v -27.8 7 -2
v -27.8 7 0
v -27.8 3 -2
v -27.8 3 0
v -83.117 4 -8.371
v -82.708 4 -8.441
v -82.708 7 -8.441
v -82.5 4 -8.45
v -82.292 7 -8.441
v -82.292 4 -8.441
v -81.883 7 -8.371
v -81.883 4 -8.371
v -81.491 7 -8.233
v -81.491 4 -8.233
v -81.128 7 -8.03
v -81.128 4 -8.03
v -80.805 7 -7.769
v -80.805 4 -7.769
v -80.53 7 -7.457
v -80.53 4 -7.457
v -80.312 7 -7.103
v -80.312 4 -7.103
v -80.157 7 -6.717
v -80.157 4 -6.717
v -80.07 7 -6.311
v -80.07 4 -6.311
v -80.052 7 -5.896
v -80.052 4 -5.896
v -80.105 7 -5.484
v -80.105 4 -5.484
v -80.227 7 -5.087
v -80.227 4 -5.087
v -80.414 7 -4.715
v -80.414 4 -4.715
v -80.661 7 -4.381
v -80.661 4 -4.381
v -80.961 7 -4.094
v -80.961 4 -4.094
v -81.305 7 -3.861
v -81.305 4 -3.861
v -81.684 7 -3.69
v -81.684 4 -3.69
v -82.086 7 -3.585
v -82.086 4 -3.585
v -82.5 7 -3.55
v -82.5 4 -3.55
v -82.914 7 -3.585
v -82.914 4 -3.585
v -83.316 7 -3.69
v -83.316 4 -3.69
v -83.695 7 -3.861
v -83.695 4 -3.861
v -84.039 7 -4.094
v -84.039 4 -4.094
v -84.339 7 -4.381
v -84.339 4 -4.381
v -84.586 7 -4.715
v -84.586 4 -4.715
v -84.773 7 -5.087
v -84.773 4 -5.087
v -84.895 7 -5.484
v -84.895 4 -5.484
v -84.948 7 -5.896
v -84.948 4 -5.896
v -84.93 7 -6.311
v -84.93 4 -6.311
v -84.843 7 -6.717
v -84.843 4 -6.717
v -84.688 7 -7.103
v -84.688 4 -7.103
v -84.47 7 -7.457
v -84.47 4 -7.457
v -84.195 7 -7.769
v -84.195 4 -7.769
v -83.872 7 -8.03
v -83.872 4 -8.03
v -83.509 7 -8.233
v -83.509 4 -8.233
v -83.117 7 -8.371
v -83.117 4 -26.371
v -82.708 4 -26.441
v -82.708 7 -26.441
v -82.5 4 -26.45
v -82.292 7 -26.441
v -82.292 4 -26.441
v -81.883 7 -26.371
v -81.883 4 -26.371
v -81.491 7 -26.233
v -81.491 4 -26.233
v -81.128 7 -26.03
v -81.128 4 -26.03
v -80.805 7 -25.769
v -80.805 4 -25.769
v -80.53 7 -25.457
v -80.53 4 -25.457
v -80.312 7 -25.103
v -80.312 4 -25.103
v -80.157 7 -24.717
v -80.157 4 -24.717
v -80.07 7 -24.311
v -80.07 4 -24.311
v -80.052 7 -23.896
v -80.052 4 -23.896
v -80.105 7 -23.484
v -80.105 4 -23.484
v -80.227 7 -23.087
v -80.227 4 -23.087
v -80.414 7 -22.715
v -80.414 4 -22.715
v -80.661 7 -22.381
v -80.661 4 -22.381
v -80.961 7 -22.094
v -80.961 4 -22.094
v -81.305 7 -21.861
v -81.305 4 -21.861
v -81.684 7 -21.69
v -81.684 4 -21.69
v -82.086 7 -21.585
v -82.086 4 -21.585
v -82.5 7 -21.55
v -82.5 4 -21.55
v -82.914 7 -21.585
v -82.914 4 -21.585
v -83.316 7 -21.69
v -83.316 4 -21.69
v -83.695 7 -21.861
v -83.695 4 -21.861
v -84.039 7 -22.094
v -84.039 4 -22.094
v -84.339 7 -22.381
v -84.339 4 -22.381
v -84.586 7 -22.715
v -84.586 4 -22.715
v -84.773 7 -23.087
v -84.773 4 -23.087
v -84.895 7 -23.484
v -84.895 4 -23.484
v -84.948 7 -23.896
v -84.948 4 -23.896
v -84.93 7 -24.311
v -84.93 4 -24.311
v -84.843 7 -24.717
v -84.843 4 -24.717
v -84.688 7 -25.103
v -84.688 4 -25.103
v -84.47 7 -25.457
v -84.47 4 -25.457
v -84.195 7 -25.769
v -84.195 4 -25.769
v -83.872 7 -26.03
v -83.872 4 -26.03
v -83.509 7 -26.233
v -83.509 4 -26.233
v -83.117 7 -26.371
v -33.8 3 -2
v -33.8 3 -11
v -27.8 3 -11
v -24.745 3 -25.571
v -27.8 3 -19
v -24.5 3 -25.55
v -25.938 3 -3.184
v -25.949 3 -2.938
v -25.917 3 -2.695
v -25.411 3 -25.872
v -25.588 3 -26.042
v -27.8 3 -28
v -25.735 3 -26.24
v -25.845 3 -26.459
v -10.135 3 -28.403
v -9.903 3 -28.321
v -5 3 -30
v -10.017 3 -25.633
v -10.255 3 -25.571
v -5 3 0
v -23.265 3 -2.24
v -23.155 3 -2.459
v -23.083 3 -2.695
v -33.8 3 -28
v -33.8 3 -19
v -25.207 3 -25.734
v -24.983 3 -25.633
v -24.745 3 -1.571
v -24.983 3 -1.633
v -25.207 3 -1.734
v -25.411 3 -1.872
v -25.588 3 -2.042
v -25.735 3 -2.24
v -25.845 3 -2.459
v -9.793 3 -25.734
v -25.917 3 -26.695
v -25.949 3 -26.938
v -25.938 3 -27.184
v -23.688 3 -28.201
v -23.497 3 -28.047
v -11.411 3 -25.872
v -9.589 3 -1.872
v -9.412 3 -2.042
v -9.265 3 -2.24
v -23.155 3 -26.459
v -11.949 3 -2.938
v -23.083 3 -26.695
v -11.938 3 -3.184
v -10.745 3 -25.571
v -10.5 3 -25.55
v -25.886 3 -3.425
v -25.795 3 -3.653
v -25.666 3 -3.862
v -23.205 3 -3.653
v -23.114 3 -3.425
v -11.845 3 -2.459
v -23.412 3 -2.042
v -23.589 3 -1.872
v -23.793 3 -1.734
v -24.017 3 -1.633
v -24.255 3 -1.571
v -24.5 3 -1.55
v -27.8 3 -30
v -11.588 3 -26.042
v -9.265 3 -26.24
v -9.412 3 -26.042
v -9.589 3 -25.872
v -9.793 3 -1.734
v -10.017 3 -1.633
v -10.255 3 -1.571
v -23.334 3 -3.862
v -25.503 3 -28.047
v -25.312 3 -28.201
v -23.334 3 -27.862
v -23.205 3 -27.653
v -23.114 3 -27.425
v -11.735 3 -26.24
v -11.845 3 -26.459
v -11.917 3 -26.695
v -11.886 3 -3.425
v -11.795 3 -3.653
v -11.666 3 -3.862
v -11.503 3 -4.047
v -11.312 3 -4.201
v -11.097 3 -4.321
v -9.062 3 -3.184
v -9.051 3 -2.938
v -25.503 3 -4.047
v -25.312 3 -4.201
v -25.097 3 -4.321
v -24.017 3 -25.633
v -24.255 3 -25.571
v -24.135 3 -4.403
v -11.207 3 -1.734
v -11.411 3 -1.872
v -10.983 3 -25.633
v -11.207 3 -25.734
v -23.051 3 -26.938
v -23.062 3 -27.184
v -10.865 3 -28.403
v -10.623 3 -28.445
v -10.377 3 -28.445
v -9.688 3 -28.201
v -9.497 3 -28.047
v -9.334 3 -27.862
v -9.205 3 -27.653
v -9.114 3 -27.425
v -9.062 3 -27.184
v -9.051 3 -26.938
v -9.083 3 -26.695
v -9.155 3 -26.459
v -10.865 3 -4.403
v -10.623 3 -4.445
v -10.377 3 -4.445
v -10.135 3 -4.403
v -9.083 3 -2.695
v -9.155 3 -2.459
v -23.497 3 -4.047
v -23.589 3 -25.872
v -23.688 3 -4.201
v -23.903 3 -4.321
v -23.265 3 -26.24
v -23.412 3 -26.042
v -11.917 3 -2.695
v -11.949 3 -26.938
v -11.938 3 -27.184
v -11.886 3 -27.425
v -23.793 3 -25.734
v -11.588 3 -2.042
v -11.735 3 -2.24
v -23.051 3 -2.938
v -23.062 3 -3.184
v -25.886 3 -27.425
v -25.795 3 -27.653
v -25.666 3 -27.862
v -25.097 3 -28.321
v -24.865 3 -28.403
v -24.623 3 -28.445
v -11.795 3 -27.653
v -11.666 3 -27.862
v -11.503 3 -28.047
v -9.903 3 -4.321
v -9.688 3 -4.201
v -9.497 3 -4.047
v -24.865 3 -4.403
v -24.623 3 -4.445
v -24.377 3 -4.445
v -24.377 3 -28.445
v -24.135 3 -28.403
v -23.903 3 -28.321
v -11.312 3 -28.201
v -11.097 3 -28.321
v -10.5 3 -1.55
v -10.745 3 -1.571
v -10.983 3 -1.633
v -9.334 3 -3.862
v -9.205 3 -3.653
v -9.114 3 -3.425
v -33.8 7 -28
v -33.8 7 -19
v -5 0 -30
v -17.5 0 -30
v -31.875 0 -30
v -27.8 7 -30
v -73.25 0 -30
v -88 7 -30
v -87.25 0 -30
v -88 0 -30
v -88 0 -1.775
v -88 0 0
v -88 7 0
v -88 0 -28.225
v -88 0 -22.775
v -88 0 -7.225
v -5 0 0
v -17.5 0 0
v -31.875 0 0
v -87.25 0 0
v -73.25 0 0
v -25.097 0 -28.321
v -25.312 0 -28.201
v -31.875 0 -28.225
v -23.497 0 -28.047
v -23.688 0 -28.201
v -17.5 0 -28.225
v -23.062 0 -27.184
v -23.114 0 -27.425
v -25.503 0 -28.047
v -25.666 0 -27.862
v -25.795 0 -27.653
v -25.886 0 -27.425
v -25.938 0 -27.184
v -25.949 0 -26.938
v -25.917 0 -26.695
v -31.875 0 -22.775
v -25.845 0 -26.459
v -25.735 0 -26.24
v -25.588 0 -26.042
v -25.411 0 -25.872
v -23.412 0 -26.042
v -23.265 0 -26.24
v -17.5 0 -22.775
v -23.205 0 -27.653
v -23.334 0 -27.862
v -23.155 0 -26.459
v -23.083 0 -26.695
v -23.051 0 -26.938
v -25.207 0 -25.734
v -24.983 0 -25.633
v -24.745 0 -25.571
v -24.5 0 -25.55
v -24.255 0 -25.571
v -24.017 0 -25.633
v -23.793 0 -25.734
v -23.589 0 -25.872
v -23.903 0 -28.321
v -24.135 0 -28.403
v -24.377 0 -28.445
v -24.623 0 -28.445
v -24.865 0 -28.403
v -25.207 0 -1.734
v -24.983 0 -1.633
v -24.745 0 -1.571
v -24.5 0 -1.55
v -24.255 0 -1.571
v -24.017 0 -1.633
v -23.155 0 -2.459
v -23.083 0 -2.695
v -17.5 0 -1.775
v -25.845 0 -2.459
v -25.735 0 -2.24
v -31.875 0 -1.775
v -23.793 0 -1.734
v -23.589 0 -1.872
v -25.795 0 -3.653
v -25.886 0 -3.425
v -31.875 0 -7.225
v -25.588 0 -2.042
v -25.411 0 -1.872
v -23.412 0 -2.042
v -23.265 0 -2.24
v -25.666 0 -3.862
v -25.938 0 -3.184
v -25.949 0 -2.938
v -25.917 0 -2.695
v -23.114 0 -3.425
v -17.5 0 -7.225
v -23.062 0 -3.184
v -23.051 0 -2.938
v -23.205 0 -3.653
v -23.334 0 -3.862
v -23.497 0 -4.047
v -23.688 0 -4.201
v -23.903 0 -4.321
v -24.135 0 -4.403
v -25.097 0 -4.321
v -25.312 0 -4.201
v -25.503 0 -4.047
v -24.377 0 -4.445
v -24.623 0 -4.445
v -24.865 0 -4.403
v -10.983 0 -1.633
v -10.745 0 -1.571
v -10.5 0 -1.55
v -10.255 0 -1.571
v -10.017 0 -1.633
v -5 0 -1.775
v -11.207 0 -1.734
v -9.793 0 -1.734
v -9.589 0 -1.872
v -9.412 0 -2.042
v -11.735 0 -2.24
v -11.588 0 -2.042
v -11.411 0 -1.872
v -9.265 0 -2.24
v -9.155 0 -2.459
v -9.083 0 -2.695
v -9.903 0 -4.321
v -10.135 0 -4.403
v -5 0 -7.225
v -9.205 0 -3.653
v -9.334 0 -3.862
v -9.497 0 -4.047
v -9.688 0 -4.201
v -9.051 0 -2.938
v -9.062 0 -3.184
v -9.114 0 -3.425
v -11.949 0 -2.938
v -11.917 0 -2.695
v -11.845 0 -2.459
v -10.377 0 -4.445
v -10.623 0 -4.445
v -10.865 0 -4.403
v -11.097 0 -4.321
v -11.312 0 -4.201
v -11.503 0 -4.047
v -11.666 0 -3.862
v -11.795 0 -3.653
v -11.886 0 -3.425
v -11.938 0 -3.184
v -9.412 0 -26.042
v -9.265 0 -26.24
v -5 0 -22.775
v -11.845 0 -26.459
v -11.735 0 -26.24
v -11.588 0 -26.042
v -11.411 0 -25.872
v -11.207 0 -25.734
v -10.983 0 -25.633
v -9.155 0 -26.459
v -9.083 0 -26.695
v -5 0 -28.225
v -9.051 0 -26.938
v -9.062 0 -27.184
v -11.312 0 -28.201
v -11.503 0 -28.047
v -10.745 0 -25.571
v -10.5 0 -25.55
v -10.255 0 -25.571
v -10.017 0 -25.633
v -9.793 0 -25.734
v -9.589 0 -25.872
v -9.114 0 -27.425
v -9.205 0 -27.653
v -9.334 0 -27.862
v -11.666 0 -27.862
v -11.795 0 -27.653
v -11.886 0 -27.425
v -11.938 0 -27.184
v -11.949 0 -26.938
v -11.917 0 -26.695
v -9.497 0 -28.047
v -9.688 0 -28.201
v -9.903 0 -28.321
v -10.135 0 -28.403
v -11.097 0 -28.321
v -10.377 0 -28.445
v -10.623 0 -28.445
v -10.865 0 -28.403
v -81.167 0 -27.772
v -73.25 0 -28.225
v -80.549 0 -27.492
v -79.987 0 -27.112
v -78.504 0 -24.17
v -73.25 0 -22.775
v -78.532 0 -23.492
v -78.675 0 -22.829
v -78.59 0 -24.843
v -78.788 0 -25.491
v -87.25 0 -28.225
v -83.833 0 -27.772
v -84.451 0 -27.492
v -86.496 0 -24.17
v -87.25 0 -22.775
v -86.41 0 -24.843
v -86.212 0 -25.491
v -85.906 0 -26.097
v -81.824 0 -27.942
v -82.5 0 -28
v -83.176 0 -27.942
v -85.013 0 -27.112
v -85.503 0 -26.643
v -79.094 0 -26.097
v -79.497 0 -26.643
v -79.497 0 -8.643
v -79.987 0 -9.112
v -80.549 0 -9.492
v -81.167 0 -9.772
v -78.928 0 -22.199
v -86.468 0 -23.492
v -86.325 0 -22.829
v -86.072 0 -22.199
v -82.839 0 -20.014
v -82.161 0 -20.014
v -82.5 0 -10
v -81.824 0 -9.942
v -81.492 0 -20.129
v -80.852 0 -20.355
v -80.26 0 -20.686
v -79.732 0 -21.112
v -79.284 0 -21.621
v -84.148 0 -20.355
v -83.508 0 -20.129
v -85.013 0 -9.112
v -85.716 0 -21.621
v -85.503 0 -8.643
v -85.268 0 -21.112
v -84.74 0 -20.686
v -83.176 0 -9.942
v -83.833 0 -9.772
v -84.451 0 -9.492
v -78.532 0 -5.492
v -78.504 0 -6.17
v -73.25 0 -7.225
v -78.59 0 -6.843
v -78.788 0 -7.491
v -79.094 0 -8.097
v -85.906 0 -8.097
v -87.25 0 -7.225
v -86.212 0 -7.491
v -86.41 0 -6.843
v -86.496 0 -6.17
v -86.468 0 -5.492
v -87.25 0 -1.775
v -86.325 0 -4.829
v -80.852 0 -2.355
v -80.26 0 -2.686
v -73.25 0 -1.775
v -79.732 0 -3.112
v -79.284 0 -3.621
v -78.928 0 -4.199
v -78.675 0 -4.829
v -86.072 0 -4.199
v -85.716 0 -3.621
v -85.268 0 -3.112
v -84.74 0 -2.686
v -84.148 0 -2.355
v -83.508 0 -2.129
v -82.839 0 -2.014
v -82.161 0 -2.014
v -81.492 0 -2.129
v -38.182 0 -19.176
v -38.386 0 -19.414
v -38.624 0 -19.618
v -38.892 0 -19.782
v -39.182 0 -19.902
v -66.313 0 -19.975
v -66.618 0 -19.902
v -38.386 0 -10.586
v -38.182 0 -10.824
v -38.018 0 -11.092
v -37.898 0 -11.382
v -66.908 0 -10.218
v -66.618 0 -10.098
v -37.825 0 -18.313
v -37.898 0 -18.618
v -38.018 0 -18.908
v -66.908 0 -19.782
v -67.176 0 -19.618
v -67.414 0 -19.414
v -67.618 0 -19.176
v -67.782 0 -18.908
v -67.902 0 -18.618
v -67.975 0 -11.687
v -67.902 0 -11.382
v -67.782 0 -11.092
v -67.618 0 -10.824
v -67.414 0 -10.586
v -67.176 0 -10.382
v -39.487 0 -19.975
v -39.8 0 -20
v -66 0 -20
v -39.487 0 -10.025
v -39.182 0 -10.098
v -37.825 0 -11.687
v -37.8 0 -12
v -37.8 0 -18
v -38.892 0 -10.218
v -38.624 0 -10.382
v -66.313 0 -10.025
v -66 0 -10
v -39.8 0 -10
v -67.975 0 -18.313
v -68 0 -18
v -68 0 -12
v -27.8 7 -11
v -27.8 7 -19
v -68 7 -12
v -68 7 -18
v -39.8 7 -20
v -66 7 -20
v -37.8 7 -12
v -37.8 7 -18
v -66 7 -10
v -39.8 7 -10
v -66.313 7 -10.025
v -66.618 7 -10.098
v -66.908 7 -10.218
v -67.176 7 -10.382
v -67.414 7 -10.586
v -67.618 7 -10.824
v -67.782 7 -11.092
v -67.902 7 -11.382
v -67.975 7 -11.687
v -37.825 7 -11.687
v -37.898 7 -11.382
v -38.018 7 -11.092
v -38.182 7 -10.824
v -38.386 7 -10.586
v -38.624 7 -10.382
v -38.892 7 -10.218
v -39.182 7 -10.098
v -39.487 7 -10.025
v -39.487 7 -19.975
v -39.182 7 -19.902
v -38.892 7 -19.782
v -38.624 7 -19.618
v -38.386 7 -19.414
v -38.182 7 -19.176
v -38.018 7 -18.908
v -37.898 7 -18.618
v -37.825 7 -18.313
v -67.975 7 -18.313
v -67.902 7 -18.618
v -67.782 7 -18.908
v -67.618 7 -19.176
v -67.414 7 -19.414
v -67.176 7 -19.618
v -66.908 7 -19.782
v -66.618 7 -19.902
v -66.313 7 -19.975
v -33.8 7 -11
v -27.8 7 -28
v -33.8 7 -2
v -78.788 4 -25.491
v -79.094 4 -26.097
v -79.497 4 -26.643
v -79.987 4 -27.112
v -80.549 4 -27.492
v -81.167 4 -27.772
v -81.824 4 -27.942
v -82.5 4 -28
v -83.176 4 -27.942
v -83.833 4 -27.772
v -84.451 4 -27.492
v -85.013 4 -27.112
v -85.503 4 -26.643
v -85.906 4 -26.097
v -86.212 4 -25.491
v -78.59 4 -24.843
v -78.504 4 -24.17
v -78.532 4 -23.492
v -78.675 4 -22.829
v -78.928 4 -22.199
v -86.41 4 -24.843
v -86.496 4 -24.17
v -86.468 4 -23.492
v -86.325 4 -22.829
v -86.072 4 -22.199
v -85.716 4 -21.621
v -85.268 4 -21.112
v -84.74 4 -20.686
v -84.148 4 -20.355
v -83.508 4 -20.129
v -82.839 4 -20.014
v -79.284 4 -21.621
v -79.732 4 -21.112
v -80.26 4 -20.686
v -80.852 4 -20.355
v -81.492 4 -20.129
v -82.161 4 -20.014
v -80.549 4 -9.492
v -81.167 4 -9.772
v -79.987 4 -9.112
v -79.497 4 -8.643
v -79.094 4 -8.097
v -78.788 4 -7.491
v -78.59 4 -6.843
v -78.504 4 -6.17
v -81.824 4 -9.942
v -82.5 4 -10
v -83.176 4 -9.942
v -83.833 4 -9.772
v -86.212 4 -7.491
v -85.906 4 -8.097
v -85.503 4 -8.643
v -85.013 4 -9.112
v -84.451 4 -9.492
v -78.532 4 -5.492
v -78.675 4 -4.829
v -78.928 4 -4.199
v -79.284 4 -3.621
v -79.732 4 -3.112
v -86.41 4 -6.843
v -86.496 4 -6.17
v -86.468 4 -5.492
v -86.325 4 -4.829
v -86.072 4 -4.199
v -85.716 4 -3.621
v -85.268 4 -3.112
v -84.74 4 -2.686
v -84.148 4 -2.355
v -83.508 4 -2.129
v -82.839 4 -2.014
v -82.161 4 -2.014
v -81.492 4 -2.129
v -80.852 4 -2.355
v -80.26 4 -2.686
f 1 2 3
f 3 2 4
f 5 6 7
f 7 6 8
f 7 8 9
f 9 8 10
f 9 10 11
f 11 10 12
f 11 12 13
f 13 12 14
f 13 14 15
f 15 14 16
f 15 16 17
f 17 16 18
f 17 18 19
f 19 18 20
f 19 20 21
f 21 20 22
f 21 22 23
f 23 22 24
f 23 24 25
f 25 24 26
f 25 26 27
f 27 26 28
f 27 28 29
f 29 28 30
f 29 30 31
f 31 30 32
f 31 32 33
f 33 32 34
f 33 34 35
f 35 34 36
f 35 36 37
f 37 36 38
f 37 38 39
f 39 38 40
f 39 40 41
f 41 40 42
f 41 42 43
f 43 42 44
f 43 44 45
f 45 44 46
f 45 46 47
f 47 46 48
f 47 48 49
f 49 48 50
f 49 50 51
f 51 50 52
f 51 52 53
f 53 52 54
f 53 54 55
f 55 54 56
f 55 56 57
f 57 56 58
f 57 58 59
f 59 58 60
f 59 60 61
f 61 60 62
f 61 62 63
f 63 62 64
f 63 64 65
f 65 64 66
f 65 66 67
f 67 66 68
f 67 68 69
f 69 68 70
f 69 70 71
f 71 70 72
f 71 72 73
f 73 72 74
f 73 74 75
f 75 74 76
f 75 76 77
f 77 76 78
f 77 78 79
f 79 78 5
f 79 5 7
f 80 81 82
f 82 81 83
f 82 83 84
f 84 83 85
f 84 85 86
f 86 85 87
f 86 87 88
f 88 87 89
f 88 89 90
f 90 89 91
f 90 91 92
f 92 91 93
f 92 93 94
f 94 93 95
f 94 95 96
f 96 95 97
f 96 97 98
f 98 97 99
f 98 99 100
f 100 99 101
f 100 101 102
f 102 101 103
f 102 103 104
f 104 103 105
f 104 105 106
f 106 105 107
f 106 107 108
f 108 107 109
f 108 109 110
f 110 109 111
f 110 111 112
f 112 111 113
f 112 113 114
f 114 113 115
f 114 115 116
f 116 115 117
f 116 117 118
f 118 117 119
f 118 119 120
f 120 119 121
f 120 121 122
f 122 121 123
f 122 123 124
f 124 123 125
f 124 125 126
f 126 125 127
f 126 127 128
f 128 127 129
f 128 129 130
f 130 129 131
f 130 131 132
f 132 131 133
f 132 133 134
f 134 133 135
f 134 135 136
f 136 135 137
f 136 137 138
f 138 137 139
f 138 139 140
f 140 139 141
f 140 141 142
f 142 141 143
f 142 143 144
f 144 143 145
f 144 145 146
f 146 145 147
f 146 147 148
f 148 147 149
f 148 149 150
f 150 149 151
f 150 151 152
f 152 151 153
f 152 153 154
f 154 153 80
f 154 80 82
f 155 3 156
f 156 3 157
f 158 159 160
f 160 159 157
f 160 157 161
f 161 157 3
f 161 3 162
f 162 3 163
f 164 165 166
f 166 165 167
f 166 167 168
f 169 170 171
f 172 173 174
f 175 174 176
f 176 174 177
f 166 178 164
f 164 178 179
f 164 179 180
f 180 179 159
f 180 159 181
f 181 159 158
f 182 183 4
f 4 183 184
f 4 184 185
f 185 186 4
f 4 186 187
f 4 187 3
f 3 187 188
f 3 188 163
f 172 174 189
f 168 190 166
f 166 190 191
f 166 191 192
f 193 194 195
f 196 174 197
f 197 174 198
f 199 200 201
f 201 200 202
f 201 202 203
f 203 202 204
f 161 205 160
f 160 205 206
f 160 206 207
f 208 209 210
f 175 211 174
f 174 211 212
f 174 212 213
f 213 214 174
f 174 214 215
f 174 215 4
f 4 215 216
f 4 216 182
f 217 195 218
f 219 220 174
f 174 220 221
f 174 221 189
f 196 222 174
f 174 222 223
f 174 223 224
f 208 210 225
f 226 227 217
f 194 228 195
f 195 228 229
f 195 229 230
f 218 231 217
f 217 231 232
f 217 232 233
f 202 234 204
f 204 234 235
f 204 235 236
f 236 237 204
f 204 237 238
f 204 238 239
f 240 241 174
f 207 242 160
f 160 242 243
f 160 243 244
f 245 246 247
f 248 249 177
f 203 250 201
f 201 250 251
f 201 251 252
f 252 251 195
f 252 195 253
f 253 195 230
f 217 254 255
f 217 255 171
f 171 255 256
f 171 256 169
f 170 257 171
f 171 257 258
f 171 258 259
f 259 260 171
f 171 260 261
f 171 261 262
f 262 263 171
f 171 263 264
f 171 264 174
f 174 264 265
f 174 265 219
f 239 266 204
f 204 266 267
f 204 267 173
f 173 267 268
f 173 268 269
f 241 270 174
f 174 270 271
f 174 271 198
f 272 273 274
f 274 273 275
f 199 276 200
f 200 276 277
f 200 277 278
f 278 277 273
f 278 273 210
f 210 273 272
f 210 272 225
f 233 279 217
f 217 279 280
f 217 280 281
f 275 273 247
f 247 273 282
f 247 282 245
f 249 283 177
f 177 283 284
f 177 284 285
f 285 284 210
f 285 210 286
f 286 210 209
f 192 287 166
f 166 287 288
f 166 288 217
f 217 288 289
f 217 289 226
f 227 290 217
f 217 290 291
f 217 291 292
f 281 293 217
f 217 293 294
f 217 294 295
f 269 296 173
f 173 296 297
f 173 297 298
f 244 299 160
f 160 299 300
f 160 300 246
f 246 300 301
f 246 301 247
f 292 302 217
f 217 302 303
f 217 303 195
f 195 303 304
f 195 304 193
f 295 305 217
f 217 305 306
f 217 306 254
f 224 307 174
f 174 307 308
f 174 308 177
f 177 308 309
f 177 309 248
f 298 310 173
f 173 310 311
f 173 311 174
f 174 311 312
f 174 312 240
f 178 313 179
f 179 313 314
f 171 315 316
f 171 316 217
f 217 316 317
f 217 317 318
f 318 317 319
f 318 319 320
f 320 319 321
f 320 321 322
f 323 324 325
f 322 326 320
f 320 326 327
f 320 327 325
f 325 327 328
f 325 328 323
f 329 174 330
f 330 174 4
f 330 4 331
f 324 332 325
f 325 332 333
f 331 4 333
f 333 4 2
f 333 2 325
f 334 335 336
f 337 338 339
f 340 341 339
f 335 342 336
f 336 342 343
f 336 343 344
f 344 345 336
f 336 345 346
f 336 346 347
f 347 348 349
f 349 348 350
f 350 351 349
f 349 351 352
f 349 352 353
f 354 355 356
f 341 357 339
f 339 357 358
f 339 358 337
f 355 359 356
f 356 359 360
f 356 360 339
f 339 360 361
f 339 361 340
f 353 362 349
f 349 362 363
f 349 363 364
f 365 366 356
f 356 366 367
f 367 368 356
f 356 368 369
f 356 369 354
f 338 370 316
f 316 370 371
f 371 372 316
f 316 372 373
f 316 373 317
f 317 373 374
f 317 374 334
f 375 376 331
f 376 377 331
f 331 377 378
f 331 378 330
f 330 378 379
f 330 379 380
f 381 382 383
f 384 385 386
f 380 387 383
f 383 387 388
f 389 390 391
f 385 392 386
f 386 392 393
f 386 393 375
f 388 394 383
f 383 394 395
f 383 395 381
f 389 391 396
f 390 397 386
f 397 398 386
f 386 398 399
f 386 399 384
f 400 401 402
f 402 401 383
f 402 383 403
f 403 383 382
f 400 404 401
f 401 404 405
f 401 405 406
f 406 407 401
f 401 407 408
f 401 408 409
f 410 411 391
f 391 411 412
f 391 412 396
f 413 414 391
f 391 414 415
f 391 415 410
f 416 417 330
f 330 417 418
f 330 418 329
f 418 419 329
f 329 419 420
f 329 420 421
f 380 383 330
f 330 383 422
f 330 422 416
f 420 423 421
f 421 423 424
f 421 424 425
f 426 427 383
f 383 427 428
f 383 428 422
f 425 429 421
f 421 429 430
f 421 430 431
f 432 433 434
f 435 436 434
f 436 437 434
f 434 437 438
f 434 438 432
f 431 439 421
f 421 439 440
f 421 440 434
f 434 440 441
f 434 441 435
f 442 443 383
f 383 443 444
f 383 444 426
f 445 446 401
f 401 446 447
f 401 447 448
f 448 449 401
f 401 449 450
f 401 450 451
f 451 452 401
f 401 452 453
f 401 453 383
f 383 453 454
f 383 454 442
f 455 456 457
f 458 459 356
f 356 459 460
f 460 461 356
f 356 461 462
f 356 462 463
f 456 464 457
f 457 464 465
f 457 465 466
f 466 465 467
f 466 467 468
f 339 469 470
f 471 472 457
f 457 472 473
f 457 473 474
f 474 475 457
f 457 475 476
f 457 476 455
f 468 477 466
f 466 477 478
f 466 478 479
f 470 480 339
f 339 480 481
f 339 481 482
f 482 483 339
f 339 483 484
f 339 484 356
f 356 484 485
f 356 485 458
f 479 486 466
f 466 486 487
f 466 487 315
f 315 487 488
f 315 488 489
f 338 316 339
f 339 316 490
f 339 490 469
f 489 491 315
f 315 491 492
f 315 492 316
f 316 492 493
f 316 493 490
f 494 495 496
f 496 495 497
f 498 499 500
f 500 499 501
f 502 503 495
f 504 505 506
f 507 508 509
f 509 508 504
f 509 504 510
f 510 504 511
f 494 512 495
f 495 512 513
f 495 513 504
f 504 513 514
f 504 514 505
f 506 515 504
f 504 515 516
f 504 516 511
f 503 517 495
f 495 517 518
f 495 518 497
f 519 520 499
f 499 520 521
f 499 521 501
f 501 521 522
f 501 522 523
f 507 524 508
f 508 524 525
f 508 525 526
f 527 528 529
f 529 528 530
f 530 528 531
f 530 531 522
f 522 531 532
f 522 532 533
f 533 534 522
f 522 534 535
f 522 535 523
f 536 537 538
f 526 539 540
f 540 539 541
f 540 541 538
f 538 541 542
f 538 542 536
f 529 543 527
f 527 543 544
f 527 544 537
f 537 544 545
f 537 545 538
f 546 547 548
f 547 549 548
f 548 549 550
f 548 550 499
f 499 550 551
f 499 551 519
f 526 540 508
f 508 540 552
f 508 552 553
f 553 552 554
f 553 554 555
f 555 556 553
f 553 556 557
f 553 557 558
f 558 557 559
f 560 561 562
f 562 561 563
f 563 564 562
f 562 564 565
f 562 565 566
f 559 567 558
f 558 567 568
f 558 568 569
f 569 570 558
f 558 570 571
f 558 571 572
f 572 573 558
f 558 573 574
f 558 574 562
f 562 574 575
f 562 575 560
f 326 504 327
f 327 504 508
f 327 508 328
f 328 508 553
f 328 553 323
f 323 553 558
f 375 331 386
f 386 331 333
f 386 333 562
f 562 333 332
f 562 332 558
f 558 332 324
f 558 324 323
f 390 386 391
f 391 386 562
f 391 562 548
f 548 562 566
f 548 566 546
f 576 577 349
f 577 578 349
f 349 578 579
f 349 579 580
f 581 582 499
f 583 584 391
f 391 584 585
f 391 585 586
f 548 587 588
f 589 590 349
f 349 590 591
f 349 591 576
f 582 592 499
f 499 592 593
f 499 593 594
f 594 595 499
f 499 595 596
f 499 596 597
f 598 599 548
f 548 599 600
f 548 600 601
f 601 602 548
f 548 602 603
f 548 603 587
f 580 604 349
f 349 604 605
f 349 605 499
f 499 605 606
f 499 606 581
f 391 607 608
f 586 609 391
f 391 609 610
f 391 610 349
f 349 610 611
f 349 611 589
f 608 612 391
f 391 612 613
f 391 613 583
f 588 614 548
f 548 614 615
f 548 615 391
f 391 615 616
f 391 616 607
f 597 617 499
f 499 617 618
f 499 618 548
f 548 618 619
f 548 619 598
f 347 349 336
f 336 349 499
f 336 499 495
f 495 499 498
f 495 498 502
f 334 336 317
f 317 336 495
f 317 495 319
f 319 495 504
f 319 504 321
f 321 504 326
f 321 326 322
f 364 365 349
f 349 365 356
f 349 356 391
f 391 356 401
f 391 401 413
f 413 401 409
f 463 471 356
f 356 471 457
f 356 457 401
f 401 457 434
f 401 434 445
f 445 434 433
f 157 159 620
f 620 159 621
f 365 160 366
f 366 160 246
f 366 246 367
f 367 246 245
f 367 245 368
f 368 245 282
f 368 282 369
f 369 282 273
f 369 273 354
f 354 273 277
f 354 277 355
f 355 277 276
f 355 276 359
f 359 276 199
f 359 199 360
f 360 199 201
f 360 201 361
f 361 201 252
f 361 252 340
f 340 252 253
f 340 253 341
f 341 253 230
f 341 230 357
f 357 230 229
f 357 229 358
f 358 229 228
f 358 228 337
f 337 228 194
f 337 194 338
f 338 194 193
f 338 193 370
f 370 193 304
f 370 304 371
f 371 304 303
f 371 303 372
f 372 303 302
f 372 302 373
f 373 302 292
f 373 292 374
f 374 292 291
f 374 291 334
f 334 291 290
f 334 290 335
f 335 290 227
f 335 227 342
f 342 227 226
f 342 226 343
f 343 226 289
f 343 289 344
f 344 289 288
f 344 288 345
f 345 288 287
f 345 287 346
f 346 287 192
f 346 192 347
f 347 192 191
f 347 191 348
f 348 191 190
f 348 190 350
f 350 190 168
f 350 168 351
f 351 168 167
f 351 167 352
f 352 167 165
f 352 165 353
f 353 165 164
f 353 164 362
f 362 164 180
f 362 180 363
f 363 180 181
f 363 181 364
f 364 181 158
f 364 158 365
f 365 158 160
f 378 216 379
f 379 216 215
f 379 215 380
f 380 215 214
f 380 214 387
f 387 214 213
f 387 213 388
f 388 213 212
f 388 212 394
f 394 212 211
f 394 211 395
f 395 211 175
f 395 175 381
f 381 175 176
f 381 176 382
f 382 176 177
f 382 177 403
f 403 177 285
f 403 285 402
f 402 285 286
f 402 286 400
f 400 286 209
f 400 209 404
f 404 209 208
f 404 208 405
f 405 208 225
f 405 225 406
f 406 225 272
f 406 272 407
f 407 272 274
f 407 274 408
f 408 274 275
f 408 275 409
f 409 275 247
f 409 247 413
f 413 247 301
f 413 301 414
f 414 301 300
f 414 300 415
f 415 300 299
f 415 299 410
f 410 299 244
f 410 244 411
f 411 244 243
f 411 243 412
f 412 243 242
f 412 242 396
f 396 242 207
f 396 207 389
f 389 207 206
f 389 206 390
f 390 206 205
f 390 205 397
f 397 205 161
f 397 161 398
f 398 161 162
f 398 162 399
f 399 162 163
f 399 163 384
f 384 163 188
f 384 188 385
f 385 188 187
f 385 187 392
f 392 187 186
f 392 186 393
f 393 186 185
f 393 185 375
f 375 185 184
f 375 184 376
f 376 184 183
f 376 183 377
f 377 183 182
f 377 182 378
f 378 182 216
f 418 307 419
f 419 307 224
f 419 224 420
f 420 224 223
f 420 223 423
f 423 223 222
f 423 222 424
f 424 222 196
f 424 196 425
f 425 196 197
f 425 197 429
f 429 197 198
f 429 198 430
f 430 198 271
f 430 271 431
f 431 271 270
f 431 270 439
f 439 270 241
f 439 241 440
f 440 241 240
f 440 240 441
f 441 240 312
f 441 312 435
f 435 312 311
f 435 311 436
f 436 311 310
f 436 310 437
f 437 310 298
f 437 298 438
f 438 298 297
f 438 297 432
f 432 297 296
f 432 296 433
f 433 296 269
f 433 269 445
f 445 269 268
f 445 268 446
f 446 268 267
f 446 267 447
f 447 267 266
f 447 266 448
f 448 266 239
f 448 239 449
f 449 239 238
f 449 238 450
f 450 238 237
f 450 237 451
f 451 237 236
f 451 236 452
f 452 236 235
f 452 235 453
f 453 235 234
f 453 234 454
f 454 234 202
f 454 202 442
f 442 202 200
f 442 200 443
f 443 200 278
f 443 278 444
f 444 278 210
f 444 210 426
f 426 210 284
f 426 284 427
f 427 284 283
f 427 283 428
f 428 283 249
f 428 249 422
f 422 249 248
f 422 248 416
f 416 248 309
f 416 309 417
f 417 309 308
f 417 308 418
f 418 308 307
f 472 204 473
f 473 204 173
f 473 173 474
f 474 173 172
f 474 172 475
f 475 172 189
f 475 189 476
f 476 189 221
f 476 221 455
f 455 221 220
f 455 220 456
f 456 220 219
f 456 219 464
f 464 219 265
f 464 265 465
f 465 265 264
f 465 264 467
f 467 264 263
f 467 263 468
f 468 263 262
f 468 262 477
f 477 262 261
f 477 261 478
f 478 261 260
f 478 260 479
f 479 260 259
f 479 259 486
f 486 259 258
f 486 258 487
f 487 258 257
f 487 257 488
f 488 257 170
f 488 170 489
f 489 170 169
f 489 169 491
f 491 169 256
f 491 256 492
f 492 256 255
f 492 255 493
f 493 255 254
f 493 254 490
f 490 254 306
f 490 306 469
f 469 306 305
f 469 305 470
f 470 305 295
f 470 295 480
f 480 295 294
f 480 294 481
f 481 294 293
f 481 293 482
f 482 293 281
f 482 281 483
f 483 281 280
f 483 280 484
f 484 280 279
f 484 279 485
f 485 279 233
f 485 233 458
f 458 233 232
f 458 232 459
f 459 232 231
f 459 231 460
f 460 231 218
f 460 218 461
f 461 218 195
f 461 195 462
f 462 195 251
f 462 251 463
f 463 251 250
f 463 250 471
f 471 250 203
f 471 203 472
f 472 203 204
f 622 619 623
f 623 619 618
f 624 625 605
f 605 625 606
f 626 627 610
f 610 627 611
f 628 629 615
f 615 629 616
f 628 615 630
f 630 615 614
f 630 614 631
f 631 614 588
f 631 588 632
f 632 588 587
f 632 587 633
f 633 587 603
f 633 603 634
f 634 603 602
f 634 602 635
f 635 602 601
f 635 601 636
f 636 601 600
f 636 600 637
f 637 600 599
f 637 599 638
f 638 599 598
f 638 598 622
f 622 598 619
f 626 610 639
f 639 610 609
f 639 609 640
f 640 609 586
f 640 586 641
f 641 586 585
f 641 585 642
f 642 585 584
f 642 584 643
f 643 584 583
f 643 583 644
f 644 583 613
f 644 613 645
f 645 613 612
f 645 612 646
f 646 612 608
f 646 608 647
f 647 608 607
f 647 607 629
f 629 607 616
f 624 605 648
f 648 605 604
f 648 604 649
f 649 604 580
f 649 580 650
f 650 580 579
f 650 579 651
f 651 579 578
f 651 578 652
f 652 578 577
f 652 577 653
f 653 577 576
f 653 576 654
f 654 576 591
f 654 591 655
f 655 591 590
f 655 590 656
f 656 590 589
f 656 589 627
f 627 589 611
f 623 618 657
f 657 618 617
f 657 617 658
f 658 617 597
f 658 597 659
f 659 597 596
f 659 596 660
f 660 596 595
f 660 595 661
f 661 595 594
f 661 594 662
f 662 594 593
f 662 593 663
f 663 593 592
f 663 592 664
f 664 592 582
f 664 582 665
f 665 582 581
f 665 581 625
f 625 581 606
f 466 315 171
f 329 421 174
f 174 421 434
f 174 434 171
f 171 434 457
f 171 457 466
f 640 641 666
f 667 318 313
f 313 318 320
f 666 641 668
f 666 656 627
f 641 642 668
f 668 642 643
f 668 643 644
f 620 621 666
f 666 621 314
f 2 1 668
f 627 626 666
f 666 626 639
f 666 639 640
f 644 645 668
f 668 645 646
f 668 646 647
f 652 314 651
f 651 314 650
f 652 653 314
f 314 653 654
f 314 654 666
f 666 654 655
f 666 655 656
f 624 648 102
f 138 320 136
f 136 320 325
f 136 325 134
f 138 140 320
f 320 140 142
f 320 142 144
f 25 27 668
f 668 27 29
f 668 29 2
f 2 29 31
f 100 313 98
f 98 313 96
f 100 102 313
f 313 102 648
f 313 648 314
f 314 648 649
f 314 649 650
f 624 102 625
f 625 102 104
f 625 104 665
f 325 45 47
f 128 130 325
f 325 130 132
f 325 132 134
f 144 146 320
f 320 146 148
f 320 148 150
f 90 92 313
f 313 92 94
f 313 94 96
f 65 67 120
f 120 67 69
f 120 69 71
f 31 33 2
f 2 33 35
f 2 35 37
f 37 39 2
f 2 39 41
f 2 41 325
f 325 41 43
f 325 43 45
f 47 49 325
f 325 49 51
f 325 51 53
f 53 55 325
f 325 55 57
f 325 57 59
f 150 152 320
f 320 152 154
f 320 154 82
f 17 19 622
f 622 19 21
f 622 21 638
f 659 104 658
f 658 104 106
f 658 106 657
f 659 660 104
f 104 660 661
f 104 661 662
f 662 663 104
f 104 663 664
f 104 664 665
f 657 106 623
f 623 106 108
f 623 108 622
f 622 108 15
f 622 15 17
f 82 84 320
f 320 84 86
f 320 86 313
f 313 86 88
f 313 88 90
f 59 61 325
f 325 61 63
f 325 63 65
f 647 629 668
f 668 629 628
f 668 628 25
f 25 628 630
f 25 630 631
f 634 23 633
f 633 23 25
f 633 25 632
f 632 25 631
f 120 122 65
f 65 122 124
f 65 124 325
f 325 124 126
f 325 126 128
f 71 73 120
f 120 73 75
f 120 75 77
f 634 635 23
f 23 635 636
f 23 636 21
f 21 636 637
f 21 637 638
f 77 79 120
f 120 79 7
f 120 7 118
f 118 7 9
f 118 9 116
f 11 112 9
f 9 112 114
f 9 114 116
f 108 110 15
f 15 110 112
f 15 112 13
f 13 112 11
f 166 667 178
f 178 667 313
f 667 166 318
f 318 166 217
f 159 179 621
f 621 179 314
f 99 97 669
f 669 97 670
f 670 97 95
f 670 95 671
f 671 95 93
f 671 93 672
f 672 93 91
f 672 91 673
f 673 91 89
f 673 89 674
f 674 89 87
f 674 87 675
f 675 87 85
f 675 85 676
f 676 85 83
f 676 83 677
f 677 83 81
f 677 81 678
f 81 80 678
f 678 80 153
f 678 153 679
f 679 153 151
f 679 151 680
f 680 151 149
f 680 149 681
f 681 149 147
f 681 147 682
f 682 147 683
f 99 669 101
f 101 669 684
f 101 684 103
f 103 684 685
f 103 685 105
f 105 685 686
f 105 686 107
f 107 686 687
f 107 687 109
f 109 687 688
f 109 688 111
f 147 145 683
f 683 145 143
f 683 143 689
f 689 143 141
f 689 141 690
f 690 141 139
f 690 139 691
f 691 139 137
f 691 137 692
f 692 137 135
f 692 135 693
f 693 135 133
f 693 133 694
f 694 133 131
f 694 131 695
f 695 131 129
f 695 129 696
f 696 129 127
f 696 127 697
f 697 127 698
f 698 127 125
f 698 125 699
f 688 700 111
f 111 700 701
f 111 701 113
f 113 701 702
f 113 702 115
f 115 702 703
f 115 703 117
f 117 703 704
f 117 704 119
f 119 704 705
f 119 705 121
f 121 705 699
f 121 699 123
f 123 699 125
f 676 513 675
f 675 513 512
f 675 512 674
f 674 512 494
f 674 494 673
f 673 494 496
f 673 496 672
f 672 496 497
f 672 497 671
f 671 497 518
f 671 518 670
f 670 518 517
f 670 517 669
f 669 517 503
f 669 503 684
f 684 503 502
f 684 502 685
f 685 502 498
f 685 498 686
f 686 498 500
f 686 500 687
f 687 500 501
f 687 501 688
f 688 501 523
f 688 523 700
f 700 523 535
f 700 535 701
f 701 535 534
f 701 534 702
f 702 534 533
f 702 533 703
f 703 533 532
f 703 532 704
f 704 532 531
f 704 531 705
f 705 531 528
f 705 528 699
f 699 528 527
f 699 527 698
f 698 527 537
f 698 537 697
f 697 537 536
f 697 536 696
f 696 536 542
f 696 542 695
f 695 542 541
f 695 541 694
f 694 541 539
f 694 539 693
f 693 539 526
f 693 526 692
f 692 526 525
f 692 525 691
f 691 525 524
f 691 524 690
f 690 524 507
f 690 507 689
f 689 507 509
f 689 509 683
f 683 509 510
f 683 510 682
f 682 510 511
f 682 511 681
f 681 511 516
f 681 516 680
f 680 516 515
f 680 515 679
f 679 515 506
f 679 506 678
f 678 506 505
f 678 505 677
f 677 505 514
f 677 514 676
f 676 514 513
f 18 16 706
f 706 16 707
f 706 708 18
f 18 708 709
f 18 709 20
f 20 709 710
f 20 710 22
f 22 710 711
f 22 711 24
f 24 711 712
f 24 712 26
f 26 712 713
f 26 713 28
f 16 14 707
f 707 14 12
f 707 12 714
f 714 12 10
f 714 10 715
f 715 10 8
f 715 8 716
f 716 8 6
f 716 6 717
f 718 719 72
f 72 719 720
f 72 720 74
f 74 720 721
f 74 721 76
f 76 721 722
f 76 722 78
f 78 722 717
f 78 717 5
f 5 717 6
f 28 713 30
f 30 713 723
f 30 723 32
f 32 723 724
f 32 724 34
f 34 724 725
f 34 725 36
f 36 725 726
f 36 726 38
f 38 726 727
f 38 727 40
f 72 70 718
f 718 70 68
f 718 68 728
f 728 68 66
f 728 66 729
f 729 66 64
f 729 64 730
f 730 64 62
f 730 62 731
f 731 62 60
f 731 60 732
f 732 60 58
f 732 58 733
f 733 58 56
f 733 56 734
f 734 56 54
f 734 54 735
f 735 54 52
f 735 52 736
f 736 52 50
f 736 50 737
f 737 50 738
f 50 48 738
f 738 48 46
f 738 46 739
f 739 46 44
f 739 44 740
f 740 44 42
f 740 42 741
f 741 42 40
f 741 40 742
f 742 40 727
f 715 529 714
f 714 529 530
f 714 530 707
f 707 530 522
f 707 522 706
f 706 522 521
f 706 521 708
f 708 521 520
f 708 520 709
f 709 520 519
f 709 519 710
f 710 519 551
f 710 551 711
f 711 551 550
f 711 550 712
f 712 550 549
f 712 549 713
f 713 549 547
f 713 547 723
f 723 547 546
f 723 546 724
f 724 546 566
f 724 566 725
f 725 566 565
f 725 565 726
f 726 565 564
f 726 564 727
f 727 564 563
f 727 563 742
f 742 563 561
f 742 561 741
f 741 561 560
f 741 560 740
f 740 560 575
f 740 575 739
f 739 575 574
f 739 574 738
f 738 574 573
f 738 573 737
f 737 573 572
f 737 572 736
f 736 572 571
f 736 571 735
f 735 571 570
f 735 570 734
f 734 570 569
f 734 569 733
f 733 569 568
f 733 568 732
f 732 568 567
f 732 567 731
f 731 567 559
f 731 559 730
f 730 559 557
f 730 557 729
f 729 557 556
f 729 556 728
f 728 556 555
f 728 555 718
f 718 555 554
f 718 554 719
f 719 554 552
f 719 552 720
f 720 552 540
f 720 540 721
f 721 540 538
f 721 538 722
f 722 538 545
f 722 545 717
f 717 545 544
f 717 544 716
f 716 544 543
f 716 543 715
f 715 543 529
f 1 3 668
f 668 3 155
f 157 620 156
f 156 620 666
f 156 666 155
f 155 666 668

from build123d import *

# Parameters (mm, degrees)
SKETCH_1_W           = 88
SKETCH_1_H           = 30
EXTRUDE_1_DEPTH      = 3
SKETCH_2_W           = 27.8
SKETCH_2_H           = 30
CUT_EXTRUDE_1_DEPTH  = 1
SKETCH_3_R           = 1.45
CUT_EXTRUDE_2_DEPTH  = 11
SKETCH_4_R           = 2.45
CUT_EXTRUDE_4_DEPTH  = 11
SKETCH_5_W           = 30.2
SKETCH_5_H           = 10
CUT_EXTRUDE_5_DEPTH  = 11
FILLET_1_R           = 2
SKETCH_6_W           = 5
SKETCH_6_H           = 30
CUT_EXTRUDE_6_DEPTH  = 10
SKETCH_9_W           = 60.2
SKETCH_9_H           = 30
SKETCH_9_R           = 2.45
EXTRUDE_4_DEPTH      = 4
EXTRUDE_START        = 1
SKETCH_7_W           = 22.8
SKETCH_7_H           = 30
SKETCH_7_R           = 1.45
EXTRUDE_5_DEPTH      = 1
SKETCH_11_W          = 15
SKETCH_11_H          = 4
CUT_EXTRUDE_8_DEPTH  = 6
SKETCH_12_W          = 2
SKETCH_12_H          = 4
EXTRUDE_6_DEPTH      = 6
SKETCH_13_W          = 6
SKETCH_13_H          = 4
EXTRUDE_7_DEPTH      = 4
SKETCH_14_R          = 4
CUT_EXTRUDE_9_DEPTH  = 4
SKETCH_15_W          = 9
SKETCH_15_H          = 4
CUT_EXTRUDE_10_DEPTH = 6


with BuildPart() as part:
    # 草图1 → 凸台-拉伸1 (new body)
    with BuildSketch(Plane(origin=(0, 0, 0), x_dir=(1, 0, 0), z_dir=(0, 1, 0))):
        with Locations((-44, 15)):
            Rectangle(SKETCH_1_W, SKETCH_1_H)
    extrude(amount=EXTRUDE_1_DEPTH)

    # 草图2 → 切除-拉伸1 (cut)
    with BuildSketch(Plane(origin=(0, 3, 0), x_dir=(1, 0, 0), z_dir=(0, 1, 0))):
        with Locations((-13.9, 15)):
            Rectangle(SKETCH_2_W, SKETCH_2_H)
    extrude(amount=-CUT_EXTRUDE_1_DEPTH, mode=Mode.SUBTRACT)

    # 草图3 → 切除-拉伸2 (cut)
    with BuildSketch(Plane(origin=(0, 2, 0), x_dir=(1, 0, 0), z_dir=(0, 1, 0))):
        with Locations(Location((-24.5, 27, 0), (0, 0, 270))):
            Circle(SKETCH_3_R)
        with Locations(Location((-24.5, 3, 0), (0, 0, 270))):
            Circle(SKETCH_3_R)
        with Locations(Location((-10.5, 3, 0), (0, 0, 270))):
            Circle(SKETCH_3_R)
        with Locations(Location((-10.5, 27, 0), (0, 0, 270))):
            Circle(SKETCH_3_R)
    extrude(amount=-CUT_EXTRUDE_2_DEPTH, mode=Mode.SUBTRACT)

    # 草图4 → 切除-拉伸4 (cut)
    with BuildSketch(Plane(origin=(0, 3, 0), x_dir=(1, 0, 0), z_dir=(0, 1, 0))):
        with Locations(Location((-82.5, 24, 0), (0, 0, 270))):
            Circle(SKETCH_4_R)
        with Locations(Location((-82.5, 6, 0), (0, 0, 270))):
            Circle(SKETCH_4_R)
    extrude(amount=-CUT_EXTRUDE_4_DEPTH, mode=Mode.SUBTRACT)

    # 草图5 → 切除-拉伸5 (cut)
    with BuildSketch(Plane(origin=(0, 3, 0), x_dir=(1, 0, 0), z_dir=(0, 1, 0))):
        with Locations((-52.9, 15)):
            Rectangle(SKETCH_5_W, SKETCH_5_H)
    extrude(amount=-CUT_EXTRUDE_5_DEPTH, mode=Mode.SUBTRACT)

    # 圆角1
    fillet_1_edges = [part.edges().sort_by_distance(p)[0] for p in [
        (-68, 1.5, -10),
        (-68, 1.5, -20),
        (-37.8, 1.5, -20),
        (-37.8, 1.5, -10),
    ]]
    fillet(fillet_1_edges, radius=FILLET_1_R)

    # 草图6 → 切除-拉伸6 (cut)
    with BuildSketch(Plane.XZ):
        with Locations((-2.5, -15)):
            Rectangle(SKETCH_6_W, SKETCH_6_H)
    extrude(amount=-CUT_EXTRUDE_6_DEPTH, mode=Mode.SUBTRACT)

    # 草图9 → 凸台-拉伸4 (add)
    with BuildSketch(Plane(origin=(0, 3, 0), x_dir=(1, 0, 0), z_dir=(0, 1, 0))):
        with Locations((-57.9, 15)):
            Rectangle(SKETCH_9_W, SKETCH_9_H)
        with Locations(Location((-82.5, 6, 0), (0, 0, 270))):
            Circle(SKETCH_9_R, mode=Mode.SUBTRACT)
        with Locations(Location((-82.5, 24, 0), (0, 0, 270))):
            Circle(SKETCH_9_R, mode=Mode.SUBTRACT)
        with BuildLine():
            Line((-37.8, 12), (-37.8, 18))
            ThreePointArc((-37.8, 18), (-38.385786438, 19.414213562), (-39.8, 20))
            Line((-39.8, 20), (-66, 20))
            ThreePointArc((-66, 20), (-67.414213562, 19.414213562), (-68, 18))
            Line((-68, 18), (-68, 12))
            ThreePointArc((-68, 12), (-67.414213562, 10.585786438), (-66, 10))
            Line((-66, 10), (-39.8, 10))
            ThreePointArc((-39.8, 10), (-38.385786438, 10.585786438), (-37.8, 12))
        make_face(mode=Mode.SUBTRACT)
    extrude(amount=EXTRUDE_4_DEPTH)

    # 草图7 → 凸台-拉伸5 (add)
    with BuildSketch(Plane(origin=(0, 2, 0), x_dir=(1, 0, 0), z_dir=(0, 1, 0)).offset(EXTRUDE_START)):
        with Locations((-16.4, 15)):
            Rectangle(SKETCH_7_W, SKETCH_7_H)
        with Locations(Location((-10.5, 3, 0), (0, 0, 270))):
            Circle(SKETCH_7_R, mode=Mode.SUBTRACT)
        with Locations(Location((-24.5, 27, 0), (0, 0, 270))):
            Circle(SKETCH_7_R, mode=Mode.SUBTRACT)
        with Locations(Location((-10.5, 27, 0), (0, 0, 270))):
            Circle(SKETCH_7_R, mode=Mode.SUBTRACT)
        with Locations(Location((-24.5, 3, 0), (0, 0, 270))):
            Circle(SKETCH_7_R, mode=Mode.SUBTRACT)
    extrude(amount=-EXTRUDE_5_DEPTH)

    # 草图11 → 切除-拉伸8 (cut)
    with BuildSketch(Plane(origin=(-27.8, 0, 0), x_dir=(0, 0, -1), z_dir=(1, 0, 0))):
        with Locations((22.5, 5)):
            Rectangle(SKETCH_11_W, SKETCH_11_H)
    extrude(amount=-CUT_EXTRUDE_8_DEPTH, mode=Mode.SUBTRACT)

    # 草图12 → 凸台-拉伸6 (add)
    with BuildSketch(Plane(origin=(-33.8, 0, 0), x_dir=(0, 0, -1), z_dir=(1, 0, 0))):
        with Locations((29, 5)):
            Rectangle(SKETCH_12_W, SKETCH_12_H)
    extrude(amount=EXTRUDE_6_DEPTH)

    # 草图13 → 凸台-拉伸7 (add)
    with BuildSketch(Plane(origin=(0, 0, -15), x_dir=(-1, 0, 0), z_dir=(0, 0, -1))):
        with Locations((30.8, 5)):
            Rectangle(SKETCH_13_W, SKETCH_13_H)
    extrude(amount=EXTRUDE_7_DEPTH)

    # 草图14 → 切除-拉伸9 (cut)
    with BuildSketch(Plane.XZ):
        with Locations(Location((-82.5, -6, 0), (0, 0, 270))):
            Circle(SKETCH_14_R)
        with Locations(Location((-82.5, -24, 0), (0, 0, 270))):
            Circle(SKETCH_14_R)
    extrude(amount=-CUT_EXTRUDE_9_DEPTH, mode=Mode.SUBTRACT)

    # 草图15 → 切除-拉伸10 (cut)
    with BuildSketch(Plane(origin=(-27.8, 0, 0), x_dir=(0, 0, -1), z_dir=(1, 0, 0))):
        with Locations((6.5, 5)):
            Rectangle(SKETCH_15_W, SKETCH_15_H)
    extrude(amount=-CUT_EXTRUDE_10_DEPTH, mode=Mode.SUBTRACT)


solid = part.part
